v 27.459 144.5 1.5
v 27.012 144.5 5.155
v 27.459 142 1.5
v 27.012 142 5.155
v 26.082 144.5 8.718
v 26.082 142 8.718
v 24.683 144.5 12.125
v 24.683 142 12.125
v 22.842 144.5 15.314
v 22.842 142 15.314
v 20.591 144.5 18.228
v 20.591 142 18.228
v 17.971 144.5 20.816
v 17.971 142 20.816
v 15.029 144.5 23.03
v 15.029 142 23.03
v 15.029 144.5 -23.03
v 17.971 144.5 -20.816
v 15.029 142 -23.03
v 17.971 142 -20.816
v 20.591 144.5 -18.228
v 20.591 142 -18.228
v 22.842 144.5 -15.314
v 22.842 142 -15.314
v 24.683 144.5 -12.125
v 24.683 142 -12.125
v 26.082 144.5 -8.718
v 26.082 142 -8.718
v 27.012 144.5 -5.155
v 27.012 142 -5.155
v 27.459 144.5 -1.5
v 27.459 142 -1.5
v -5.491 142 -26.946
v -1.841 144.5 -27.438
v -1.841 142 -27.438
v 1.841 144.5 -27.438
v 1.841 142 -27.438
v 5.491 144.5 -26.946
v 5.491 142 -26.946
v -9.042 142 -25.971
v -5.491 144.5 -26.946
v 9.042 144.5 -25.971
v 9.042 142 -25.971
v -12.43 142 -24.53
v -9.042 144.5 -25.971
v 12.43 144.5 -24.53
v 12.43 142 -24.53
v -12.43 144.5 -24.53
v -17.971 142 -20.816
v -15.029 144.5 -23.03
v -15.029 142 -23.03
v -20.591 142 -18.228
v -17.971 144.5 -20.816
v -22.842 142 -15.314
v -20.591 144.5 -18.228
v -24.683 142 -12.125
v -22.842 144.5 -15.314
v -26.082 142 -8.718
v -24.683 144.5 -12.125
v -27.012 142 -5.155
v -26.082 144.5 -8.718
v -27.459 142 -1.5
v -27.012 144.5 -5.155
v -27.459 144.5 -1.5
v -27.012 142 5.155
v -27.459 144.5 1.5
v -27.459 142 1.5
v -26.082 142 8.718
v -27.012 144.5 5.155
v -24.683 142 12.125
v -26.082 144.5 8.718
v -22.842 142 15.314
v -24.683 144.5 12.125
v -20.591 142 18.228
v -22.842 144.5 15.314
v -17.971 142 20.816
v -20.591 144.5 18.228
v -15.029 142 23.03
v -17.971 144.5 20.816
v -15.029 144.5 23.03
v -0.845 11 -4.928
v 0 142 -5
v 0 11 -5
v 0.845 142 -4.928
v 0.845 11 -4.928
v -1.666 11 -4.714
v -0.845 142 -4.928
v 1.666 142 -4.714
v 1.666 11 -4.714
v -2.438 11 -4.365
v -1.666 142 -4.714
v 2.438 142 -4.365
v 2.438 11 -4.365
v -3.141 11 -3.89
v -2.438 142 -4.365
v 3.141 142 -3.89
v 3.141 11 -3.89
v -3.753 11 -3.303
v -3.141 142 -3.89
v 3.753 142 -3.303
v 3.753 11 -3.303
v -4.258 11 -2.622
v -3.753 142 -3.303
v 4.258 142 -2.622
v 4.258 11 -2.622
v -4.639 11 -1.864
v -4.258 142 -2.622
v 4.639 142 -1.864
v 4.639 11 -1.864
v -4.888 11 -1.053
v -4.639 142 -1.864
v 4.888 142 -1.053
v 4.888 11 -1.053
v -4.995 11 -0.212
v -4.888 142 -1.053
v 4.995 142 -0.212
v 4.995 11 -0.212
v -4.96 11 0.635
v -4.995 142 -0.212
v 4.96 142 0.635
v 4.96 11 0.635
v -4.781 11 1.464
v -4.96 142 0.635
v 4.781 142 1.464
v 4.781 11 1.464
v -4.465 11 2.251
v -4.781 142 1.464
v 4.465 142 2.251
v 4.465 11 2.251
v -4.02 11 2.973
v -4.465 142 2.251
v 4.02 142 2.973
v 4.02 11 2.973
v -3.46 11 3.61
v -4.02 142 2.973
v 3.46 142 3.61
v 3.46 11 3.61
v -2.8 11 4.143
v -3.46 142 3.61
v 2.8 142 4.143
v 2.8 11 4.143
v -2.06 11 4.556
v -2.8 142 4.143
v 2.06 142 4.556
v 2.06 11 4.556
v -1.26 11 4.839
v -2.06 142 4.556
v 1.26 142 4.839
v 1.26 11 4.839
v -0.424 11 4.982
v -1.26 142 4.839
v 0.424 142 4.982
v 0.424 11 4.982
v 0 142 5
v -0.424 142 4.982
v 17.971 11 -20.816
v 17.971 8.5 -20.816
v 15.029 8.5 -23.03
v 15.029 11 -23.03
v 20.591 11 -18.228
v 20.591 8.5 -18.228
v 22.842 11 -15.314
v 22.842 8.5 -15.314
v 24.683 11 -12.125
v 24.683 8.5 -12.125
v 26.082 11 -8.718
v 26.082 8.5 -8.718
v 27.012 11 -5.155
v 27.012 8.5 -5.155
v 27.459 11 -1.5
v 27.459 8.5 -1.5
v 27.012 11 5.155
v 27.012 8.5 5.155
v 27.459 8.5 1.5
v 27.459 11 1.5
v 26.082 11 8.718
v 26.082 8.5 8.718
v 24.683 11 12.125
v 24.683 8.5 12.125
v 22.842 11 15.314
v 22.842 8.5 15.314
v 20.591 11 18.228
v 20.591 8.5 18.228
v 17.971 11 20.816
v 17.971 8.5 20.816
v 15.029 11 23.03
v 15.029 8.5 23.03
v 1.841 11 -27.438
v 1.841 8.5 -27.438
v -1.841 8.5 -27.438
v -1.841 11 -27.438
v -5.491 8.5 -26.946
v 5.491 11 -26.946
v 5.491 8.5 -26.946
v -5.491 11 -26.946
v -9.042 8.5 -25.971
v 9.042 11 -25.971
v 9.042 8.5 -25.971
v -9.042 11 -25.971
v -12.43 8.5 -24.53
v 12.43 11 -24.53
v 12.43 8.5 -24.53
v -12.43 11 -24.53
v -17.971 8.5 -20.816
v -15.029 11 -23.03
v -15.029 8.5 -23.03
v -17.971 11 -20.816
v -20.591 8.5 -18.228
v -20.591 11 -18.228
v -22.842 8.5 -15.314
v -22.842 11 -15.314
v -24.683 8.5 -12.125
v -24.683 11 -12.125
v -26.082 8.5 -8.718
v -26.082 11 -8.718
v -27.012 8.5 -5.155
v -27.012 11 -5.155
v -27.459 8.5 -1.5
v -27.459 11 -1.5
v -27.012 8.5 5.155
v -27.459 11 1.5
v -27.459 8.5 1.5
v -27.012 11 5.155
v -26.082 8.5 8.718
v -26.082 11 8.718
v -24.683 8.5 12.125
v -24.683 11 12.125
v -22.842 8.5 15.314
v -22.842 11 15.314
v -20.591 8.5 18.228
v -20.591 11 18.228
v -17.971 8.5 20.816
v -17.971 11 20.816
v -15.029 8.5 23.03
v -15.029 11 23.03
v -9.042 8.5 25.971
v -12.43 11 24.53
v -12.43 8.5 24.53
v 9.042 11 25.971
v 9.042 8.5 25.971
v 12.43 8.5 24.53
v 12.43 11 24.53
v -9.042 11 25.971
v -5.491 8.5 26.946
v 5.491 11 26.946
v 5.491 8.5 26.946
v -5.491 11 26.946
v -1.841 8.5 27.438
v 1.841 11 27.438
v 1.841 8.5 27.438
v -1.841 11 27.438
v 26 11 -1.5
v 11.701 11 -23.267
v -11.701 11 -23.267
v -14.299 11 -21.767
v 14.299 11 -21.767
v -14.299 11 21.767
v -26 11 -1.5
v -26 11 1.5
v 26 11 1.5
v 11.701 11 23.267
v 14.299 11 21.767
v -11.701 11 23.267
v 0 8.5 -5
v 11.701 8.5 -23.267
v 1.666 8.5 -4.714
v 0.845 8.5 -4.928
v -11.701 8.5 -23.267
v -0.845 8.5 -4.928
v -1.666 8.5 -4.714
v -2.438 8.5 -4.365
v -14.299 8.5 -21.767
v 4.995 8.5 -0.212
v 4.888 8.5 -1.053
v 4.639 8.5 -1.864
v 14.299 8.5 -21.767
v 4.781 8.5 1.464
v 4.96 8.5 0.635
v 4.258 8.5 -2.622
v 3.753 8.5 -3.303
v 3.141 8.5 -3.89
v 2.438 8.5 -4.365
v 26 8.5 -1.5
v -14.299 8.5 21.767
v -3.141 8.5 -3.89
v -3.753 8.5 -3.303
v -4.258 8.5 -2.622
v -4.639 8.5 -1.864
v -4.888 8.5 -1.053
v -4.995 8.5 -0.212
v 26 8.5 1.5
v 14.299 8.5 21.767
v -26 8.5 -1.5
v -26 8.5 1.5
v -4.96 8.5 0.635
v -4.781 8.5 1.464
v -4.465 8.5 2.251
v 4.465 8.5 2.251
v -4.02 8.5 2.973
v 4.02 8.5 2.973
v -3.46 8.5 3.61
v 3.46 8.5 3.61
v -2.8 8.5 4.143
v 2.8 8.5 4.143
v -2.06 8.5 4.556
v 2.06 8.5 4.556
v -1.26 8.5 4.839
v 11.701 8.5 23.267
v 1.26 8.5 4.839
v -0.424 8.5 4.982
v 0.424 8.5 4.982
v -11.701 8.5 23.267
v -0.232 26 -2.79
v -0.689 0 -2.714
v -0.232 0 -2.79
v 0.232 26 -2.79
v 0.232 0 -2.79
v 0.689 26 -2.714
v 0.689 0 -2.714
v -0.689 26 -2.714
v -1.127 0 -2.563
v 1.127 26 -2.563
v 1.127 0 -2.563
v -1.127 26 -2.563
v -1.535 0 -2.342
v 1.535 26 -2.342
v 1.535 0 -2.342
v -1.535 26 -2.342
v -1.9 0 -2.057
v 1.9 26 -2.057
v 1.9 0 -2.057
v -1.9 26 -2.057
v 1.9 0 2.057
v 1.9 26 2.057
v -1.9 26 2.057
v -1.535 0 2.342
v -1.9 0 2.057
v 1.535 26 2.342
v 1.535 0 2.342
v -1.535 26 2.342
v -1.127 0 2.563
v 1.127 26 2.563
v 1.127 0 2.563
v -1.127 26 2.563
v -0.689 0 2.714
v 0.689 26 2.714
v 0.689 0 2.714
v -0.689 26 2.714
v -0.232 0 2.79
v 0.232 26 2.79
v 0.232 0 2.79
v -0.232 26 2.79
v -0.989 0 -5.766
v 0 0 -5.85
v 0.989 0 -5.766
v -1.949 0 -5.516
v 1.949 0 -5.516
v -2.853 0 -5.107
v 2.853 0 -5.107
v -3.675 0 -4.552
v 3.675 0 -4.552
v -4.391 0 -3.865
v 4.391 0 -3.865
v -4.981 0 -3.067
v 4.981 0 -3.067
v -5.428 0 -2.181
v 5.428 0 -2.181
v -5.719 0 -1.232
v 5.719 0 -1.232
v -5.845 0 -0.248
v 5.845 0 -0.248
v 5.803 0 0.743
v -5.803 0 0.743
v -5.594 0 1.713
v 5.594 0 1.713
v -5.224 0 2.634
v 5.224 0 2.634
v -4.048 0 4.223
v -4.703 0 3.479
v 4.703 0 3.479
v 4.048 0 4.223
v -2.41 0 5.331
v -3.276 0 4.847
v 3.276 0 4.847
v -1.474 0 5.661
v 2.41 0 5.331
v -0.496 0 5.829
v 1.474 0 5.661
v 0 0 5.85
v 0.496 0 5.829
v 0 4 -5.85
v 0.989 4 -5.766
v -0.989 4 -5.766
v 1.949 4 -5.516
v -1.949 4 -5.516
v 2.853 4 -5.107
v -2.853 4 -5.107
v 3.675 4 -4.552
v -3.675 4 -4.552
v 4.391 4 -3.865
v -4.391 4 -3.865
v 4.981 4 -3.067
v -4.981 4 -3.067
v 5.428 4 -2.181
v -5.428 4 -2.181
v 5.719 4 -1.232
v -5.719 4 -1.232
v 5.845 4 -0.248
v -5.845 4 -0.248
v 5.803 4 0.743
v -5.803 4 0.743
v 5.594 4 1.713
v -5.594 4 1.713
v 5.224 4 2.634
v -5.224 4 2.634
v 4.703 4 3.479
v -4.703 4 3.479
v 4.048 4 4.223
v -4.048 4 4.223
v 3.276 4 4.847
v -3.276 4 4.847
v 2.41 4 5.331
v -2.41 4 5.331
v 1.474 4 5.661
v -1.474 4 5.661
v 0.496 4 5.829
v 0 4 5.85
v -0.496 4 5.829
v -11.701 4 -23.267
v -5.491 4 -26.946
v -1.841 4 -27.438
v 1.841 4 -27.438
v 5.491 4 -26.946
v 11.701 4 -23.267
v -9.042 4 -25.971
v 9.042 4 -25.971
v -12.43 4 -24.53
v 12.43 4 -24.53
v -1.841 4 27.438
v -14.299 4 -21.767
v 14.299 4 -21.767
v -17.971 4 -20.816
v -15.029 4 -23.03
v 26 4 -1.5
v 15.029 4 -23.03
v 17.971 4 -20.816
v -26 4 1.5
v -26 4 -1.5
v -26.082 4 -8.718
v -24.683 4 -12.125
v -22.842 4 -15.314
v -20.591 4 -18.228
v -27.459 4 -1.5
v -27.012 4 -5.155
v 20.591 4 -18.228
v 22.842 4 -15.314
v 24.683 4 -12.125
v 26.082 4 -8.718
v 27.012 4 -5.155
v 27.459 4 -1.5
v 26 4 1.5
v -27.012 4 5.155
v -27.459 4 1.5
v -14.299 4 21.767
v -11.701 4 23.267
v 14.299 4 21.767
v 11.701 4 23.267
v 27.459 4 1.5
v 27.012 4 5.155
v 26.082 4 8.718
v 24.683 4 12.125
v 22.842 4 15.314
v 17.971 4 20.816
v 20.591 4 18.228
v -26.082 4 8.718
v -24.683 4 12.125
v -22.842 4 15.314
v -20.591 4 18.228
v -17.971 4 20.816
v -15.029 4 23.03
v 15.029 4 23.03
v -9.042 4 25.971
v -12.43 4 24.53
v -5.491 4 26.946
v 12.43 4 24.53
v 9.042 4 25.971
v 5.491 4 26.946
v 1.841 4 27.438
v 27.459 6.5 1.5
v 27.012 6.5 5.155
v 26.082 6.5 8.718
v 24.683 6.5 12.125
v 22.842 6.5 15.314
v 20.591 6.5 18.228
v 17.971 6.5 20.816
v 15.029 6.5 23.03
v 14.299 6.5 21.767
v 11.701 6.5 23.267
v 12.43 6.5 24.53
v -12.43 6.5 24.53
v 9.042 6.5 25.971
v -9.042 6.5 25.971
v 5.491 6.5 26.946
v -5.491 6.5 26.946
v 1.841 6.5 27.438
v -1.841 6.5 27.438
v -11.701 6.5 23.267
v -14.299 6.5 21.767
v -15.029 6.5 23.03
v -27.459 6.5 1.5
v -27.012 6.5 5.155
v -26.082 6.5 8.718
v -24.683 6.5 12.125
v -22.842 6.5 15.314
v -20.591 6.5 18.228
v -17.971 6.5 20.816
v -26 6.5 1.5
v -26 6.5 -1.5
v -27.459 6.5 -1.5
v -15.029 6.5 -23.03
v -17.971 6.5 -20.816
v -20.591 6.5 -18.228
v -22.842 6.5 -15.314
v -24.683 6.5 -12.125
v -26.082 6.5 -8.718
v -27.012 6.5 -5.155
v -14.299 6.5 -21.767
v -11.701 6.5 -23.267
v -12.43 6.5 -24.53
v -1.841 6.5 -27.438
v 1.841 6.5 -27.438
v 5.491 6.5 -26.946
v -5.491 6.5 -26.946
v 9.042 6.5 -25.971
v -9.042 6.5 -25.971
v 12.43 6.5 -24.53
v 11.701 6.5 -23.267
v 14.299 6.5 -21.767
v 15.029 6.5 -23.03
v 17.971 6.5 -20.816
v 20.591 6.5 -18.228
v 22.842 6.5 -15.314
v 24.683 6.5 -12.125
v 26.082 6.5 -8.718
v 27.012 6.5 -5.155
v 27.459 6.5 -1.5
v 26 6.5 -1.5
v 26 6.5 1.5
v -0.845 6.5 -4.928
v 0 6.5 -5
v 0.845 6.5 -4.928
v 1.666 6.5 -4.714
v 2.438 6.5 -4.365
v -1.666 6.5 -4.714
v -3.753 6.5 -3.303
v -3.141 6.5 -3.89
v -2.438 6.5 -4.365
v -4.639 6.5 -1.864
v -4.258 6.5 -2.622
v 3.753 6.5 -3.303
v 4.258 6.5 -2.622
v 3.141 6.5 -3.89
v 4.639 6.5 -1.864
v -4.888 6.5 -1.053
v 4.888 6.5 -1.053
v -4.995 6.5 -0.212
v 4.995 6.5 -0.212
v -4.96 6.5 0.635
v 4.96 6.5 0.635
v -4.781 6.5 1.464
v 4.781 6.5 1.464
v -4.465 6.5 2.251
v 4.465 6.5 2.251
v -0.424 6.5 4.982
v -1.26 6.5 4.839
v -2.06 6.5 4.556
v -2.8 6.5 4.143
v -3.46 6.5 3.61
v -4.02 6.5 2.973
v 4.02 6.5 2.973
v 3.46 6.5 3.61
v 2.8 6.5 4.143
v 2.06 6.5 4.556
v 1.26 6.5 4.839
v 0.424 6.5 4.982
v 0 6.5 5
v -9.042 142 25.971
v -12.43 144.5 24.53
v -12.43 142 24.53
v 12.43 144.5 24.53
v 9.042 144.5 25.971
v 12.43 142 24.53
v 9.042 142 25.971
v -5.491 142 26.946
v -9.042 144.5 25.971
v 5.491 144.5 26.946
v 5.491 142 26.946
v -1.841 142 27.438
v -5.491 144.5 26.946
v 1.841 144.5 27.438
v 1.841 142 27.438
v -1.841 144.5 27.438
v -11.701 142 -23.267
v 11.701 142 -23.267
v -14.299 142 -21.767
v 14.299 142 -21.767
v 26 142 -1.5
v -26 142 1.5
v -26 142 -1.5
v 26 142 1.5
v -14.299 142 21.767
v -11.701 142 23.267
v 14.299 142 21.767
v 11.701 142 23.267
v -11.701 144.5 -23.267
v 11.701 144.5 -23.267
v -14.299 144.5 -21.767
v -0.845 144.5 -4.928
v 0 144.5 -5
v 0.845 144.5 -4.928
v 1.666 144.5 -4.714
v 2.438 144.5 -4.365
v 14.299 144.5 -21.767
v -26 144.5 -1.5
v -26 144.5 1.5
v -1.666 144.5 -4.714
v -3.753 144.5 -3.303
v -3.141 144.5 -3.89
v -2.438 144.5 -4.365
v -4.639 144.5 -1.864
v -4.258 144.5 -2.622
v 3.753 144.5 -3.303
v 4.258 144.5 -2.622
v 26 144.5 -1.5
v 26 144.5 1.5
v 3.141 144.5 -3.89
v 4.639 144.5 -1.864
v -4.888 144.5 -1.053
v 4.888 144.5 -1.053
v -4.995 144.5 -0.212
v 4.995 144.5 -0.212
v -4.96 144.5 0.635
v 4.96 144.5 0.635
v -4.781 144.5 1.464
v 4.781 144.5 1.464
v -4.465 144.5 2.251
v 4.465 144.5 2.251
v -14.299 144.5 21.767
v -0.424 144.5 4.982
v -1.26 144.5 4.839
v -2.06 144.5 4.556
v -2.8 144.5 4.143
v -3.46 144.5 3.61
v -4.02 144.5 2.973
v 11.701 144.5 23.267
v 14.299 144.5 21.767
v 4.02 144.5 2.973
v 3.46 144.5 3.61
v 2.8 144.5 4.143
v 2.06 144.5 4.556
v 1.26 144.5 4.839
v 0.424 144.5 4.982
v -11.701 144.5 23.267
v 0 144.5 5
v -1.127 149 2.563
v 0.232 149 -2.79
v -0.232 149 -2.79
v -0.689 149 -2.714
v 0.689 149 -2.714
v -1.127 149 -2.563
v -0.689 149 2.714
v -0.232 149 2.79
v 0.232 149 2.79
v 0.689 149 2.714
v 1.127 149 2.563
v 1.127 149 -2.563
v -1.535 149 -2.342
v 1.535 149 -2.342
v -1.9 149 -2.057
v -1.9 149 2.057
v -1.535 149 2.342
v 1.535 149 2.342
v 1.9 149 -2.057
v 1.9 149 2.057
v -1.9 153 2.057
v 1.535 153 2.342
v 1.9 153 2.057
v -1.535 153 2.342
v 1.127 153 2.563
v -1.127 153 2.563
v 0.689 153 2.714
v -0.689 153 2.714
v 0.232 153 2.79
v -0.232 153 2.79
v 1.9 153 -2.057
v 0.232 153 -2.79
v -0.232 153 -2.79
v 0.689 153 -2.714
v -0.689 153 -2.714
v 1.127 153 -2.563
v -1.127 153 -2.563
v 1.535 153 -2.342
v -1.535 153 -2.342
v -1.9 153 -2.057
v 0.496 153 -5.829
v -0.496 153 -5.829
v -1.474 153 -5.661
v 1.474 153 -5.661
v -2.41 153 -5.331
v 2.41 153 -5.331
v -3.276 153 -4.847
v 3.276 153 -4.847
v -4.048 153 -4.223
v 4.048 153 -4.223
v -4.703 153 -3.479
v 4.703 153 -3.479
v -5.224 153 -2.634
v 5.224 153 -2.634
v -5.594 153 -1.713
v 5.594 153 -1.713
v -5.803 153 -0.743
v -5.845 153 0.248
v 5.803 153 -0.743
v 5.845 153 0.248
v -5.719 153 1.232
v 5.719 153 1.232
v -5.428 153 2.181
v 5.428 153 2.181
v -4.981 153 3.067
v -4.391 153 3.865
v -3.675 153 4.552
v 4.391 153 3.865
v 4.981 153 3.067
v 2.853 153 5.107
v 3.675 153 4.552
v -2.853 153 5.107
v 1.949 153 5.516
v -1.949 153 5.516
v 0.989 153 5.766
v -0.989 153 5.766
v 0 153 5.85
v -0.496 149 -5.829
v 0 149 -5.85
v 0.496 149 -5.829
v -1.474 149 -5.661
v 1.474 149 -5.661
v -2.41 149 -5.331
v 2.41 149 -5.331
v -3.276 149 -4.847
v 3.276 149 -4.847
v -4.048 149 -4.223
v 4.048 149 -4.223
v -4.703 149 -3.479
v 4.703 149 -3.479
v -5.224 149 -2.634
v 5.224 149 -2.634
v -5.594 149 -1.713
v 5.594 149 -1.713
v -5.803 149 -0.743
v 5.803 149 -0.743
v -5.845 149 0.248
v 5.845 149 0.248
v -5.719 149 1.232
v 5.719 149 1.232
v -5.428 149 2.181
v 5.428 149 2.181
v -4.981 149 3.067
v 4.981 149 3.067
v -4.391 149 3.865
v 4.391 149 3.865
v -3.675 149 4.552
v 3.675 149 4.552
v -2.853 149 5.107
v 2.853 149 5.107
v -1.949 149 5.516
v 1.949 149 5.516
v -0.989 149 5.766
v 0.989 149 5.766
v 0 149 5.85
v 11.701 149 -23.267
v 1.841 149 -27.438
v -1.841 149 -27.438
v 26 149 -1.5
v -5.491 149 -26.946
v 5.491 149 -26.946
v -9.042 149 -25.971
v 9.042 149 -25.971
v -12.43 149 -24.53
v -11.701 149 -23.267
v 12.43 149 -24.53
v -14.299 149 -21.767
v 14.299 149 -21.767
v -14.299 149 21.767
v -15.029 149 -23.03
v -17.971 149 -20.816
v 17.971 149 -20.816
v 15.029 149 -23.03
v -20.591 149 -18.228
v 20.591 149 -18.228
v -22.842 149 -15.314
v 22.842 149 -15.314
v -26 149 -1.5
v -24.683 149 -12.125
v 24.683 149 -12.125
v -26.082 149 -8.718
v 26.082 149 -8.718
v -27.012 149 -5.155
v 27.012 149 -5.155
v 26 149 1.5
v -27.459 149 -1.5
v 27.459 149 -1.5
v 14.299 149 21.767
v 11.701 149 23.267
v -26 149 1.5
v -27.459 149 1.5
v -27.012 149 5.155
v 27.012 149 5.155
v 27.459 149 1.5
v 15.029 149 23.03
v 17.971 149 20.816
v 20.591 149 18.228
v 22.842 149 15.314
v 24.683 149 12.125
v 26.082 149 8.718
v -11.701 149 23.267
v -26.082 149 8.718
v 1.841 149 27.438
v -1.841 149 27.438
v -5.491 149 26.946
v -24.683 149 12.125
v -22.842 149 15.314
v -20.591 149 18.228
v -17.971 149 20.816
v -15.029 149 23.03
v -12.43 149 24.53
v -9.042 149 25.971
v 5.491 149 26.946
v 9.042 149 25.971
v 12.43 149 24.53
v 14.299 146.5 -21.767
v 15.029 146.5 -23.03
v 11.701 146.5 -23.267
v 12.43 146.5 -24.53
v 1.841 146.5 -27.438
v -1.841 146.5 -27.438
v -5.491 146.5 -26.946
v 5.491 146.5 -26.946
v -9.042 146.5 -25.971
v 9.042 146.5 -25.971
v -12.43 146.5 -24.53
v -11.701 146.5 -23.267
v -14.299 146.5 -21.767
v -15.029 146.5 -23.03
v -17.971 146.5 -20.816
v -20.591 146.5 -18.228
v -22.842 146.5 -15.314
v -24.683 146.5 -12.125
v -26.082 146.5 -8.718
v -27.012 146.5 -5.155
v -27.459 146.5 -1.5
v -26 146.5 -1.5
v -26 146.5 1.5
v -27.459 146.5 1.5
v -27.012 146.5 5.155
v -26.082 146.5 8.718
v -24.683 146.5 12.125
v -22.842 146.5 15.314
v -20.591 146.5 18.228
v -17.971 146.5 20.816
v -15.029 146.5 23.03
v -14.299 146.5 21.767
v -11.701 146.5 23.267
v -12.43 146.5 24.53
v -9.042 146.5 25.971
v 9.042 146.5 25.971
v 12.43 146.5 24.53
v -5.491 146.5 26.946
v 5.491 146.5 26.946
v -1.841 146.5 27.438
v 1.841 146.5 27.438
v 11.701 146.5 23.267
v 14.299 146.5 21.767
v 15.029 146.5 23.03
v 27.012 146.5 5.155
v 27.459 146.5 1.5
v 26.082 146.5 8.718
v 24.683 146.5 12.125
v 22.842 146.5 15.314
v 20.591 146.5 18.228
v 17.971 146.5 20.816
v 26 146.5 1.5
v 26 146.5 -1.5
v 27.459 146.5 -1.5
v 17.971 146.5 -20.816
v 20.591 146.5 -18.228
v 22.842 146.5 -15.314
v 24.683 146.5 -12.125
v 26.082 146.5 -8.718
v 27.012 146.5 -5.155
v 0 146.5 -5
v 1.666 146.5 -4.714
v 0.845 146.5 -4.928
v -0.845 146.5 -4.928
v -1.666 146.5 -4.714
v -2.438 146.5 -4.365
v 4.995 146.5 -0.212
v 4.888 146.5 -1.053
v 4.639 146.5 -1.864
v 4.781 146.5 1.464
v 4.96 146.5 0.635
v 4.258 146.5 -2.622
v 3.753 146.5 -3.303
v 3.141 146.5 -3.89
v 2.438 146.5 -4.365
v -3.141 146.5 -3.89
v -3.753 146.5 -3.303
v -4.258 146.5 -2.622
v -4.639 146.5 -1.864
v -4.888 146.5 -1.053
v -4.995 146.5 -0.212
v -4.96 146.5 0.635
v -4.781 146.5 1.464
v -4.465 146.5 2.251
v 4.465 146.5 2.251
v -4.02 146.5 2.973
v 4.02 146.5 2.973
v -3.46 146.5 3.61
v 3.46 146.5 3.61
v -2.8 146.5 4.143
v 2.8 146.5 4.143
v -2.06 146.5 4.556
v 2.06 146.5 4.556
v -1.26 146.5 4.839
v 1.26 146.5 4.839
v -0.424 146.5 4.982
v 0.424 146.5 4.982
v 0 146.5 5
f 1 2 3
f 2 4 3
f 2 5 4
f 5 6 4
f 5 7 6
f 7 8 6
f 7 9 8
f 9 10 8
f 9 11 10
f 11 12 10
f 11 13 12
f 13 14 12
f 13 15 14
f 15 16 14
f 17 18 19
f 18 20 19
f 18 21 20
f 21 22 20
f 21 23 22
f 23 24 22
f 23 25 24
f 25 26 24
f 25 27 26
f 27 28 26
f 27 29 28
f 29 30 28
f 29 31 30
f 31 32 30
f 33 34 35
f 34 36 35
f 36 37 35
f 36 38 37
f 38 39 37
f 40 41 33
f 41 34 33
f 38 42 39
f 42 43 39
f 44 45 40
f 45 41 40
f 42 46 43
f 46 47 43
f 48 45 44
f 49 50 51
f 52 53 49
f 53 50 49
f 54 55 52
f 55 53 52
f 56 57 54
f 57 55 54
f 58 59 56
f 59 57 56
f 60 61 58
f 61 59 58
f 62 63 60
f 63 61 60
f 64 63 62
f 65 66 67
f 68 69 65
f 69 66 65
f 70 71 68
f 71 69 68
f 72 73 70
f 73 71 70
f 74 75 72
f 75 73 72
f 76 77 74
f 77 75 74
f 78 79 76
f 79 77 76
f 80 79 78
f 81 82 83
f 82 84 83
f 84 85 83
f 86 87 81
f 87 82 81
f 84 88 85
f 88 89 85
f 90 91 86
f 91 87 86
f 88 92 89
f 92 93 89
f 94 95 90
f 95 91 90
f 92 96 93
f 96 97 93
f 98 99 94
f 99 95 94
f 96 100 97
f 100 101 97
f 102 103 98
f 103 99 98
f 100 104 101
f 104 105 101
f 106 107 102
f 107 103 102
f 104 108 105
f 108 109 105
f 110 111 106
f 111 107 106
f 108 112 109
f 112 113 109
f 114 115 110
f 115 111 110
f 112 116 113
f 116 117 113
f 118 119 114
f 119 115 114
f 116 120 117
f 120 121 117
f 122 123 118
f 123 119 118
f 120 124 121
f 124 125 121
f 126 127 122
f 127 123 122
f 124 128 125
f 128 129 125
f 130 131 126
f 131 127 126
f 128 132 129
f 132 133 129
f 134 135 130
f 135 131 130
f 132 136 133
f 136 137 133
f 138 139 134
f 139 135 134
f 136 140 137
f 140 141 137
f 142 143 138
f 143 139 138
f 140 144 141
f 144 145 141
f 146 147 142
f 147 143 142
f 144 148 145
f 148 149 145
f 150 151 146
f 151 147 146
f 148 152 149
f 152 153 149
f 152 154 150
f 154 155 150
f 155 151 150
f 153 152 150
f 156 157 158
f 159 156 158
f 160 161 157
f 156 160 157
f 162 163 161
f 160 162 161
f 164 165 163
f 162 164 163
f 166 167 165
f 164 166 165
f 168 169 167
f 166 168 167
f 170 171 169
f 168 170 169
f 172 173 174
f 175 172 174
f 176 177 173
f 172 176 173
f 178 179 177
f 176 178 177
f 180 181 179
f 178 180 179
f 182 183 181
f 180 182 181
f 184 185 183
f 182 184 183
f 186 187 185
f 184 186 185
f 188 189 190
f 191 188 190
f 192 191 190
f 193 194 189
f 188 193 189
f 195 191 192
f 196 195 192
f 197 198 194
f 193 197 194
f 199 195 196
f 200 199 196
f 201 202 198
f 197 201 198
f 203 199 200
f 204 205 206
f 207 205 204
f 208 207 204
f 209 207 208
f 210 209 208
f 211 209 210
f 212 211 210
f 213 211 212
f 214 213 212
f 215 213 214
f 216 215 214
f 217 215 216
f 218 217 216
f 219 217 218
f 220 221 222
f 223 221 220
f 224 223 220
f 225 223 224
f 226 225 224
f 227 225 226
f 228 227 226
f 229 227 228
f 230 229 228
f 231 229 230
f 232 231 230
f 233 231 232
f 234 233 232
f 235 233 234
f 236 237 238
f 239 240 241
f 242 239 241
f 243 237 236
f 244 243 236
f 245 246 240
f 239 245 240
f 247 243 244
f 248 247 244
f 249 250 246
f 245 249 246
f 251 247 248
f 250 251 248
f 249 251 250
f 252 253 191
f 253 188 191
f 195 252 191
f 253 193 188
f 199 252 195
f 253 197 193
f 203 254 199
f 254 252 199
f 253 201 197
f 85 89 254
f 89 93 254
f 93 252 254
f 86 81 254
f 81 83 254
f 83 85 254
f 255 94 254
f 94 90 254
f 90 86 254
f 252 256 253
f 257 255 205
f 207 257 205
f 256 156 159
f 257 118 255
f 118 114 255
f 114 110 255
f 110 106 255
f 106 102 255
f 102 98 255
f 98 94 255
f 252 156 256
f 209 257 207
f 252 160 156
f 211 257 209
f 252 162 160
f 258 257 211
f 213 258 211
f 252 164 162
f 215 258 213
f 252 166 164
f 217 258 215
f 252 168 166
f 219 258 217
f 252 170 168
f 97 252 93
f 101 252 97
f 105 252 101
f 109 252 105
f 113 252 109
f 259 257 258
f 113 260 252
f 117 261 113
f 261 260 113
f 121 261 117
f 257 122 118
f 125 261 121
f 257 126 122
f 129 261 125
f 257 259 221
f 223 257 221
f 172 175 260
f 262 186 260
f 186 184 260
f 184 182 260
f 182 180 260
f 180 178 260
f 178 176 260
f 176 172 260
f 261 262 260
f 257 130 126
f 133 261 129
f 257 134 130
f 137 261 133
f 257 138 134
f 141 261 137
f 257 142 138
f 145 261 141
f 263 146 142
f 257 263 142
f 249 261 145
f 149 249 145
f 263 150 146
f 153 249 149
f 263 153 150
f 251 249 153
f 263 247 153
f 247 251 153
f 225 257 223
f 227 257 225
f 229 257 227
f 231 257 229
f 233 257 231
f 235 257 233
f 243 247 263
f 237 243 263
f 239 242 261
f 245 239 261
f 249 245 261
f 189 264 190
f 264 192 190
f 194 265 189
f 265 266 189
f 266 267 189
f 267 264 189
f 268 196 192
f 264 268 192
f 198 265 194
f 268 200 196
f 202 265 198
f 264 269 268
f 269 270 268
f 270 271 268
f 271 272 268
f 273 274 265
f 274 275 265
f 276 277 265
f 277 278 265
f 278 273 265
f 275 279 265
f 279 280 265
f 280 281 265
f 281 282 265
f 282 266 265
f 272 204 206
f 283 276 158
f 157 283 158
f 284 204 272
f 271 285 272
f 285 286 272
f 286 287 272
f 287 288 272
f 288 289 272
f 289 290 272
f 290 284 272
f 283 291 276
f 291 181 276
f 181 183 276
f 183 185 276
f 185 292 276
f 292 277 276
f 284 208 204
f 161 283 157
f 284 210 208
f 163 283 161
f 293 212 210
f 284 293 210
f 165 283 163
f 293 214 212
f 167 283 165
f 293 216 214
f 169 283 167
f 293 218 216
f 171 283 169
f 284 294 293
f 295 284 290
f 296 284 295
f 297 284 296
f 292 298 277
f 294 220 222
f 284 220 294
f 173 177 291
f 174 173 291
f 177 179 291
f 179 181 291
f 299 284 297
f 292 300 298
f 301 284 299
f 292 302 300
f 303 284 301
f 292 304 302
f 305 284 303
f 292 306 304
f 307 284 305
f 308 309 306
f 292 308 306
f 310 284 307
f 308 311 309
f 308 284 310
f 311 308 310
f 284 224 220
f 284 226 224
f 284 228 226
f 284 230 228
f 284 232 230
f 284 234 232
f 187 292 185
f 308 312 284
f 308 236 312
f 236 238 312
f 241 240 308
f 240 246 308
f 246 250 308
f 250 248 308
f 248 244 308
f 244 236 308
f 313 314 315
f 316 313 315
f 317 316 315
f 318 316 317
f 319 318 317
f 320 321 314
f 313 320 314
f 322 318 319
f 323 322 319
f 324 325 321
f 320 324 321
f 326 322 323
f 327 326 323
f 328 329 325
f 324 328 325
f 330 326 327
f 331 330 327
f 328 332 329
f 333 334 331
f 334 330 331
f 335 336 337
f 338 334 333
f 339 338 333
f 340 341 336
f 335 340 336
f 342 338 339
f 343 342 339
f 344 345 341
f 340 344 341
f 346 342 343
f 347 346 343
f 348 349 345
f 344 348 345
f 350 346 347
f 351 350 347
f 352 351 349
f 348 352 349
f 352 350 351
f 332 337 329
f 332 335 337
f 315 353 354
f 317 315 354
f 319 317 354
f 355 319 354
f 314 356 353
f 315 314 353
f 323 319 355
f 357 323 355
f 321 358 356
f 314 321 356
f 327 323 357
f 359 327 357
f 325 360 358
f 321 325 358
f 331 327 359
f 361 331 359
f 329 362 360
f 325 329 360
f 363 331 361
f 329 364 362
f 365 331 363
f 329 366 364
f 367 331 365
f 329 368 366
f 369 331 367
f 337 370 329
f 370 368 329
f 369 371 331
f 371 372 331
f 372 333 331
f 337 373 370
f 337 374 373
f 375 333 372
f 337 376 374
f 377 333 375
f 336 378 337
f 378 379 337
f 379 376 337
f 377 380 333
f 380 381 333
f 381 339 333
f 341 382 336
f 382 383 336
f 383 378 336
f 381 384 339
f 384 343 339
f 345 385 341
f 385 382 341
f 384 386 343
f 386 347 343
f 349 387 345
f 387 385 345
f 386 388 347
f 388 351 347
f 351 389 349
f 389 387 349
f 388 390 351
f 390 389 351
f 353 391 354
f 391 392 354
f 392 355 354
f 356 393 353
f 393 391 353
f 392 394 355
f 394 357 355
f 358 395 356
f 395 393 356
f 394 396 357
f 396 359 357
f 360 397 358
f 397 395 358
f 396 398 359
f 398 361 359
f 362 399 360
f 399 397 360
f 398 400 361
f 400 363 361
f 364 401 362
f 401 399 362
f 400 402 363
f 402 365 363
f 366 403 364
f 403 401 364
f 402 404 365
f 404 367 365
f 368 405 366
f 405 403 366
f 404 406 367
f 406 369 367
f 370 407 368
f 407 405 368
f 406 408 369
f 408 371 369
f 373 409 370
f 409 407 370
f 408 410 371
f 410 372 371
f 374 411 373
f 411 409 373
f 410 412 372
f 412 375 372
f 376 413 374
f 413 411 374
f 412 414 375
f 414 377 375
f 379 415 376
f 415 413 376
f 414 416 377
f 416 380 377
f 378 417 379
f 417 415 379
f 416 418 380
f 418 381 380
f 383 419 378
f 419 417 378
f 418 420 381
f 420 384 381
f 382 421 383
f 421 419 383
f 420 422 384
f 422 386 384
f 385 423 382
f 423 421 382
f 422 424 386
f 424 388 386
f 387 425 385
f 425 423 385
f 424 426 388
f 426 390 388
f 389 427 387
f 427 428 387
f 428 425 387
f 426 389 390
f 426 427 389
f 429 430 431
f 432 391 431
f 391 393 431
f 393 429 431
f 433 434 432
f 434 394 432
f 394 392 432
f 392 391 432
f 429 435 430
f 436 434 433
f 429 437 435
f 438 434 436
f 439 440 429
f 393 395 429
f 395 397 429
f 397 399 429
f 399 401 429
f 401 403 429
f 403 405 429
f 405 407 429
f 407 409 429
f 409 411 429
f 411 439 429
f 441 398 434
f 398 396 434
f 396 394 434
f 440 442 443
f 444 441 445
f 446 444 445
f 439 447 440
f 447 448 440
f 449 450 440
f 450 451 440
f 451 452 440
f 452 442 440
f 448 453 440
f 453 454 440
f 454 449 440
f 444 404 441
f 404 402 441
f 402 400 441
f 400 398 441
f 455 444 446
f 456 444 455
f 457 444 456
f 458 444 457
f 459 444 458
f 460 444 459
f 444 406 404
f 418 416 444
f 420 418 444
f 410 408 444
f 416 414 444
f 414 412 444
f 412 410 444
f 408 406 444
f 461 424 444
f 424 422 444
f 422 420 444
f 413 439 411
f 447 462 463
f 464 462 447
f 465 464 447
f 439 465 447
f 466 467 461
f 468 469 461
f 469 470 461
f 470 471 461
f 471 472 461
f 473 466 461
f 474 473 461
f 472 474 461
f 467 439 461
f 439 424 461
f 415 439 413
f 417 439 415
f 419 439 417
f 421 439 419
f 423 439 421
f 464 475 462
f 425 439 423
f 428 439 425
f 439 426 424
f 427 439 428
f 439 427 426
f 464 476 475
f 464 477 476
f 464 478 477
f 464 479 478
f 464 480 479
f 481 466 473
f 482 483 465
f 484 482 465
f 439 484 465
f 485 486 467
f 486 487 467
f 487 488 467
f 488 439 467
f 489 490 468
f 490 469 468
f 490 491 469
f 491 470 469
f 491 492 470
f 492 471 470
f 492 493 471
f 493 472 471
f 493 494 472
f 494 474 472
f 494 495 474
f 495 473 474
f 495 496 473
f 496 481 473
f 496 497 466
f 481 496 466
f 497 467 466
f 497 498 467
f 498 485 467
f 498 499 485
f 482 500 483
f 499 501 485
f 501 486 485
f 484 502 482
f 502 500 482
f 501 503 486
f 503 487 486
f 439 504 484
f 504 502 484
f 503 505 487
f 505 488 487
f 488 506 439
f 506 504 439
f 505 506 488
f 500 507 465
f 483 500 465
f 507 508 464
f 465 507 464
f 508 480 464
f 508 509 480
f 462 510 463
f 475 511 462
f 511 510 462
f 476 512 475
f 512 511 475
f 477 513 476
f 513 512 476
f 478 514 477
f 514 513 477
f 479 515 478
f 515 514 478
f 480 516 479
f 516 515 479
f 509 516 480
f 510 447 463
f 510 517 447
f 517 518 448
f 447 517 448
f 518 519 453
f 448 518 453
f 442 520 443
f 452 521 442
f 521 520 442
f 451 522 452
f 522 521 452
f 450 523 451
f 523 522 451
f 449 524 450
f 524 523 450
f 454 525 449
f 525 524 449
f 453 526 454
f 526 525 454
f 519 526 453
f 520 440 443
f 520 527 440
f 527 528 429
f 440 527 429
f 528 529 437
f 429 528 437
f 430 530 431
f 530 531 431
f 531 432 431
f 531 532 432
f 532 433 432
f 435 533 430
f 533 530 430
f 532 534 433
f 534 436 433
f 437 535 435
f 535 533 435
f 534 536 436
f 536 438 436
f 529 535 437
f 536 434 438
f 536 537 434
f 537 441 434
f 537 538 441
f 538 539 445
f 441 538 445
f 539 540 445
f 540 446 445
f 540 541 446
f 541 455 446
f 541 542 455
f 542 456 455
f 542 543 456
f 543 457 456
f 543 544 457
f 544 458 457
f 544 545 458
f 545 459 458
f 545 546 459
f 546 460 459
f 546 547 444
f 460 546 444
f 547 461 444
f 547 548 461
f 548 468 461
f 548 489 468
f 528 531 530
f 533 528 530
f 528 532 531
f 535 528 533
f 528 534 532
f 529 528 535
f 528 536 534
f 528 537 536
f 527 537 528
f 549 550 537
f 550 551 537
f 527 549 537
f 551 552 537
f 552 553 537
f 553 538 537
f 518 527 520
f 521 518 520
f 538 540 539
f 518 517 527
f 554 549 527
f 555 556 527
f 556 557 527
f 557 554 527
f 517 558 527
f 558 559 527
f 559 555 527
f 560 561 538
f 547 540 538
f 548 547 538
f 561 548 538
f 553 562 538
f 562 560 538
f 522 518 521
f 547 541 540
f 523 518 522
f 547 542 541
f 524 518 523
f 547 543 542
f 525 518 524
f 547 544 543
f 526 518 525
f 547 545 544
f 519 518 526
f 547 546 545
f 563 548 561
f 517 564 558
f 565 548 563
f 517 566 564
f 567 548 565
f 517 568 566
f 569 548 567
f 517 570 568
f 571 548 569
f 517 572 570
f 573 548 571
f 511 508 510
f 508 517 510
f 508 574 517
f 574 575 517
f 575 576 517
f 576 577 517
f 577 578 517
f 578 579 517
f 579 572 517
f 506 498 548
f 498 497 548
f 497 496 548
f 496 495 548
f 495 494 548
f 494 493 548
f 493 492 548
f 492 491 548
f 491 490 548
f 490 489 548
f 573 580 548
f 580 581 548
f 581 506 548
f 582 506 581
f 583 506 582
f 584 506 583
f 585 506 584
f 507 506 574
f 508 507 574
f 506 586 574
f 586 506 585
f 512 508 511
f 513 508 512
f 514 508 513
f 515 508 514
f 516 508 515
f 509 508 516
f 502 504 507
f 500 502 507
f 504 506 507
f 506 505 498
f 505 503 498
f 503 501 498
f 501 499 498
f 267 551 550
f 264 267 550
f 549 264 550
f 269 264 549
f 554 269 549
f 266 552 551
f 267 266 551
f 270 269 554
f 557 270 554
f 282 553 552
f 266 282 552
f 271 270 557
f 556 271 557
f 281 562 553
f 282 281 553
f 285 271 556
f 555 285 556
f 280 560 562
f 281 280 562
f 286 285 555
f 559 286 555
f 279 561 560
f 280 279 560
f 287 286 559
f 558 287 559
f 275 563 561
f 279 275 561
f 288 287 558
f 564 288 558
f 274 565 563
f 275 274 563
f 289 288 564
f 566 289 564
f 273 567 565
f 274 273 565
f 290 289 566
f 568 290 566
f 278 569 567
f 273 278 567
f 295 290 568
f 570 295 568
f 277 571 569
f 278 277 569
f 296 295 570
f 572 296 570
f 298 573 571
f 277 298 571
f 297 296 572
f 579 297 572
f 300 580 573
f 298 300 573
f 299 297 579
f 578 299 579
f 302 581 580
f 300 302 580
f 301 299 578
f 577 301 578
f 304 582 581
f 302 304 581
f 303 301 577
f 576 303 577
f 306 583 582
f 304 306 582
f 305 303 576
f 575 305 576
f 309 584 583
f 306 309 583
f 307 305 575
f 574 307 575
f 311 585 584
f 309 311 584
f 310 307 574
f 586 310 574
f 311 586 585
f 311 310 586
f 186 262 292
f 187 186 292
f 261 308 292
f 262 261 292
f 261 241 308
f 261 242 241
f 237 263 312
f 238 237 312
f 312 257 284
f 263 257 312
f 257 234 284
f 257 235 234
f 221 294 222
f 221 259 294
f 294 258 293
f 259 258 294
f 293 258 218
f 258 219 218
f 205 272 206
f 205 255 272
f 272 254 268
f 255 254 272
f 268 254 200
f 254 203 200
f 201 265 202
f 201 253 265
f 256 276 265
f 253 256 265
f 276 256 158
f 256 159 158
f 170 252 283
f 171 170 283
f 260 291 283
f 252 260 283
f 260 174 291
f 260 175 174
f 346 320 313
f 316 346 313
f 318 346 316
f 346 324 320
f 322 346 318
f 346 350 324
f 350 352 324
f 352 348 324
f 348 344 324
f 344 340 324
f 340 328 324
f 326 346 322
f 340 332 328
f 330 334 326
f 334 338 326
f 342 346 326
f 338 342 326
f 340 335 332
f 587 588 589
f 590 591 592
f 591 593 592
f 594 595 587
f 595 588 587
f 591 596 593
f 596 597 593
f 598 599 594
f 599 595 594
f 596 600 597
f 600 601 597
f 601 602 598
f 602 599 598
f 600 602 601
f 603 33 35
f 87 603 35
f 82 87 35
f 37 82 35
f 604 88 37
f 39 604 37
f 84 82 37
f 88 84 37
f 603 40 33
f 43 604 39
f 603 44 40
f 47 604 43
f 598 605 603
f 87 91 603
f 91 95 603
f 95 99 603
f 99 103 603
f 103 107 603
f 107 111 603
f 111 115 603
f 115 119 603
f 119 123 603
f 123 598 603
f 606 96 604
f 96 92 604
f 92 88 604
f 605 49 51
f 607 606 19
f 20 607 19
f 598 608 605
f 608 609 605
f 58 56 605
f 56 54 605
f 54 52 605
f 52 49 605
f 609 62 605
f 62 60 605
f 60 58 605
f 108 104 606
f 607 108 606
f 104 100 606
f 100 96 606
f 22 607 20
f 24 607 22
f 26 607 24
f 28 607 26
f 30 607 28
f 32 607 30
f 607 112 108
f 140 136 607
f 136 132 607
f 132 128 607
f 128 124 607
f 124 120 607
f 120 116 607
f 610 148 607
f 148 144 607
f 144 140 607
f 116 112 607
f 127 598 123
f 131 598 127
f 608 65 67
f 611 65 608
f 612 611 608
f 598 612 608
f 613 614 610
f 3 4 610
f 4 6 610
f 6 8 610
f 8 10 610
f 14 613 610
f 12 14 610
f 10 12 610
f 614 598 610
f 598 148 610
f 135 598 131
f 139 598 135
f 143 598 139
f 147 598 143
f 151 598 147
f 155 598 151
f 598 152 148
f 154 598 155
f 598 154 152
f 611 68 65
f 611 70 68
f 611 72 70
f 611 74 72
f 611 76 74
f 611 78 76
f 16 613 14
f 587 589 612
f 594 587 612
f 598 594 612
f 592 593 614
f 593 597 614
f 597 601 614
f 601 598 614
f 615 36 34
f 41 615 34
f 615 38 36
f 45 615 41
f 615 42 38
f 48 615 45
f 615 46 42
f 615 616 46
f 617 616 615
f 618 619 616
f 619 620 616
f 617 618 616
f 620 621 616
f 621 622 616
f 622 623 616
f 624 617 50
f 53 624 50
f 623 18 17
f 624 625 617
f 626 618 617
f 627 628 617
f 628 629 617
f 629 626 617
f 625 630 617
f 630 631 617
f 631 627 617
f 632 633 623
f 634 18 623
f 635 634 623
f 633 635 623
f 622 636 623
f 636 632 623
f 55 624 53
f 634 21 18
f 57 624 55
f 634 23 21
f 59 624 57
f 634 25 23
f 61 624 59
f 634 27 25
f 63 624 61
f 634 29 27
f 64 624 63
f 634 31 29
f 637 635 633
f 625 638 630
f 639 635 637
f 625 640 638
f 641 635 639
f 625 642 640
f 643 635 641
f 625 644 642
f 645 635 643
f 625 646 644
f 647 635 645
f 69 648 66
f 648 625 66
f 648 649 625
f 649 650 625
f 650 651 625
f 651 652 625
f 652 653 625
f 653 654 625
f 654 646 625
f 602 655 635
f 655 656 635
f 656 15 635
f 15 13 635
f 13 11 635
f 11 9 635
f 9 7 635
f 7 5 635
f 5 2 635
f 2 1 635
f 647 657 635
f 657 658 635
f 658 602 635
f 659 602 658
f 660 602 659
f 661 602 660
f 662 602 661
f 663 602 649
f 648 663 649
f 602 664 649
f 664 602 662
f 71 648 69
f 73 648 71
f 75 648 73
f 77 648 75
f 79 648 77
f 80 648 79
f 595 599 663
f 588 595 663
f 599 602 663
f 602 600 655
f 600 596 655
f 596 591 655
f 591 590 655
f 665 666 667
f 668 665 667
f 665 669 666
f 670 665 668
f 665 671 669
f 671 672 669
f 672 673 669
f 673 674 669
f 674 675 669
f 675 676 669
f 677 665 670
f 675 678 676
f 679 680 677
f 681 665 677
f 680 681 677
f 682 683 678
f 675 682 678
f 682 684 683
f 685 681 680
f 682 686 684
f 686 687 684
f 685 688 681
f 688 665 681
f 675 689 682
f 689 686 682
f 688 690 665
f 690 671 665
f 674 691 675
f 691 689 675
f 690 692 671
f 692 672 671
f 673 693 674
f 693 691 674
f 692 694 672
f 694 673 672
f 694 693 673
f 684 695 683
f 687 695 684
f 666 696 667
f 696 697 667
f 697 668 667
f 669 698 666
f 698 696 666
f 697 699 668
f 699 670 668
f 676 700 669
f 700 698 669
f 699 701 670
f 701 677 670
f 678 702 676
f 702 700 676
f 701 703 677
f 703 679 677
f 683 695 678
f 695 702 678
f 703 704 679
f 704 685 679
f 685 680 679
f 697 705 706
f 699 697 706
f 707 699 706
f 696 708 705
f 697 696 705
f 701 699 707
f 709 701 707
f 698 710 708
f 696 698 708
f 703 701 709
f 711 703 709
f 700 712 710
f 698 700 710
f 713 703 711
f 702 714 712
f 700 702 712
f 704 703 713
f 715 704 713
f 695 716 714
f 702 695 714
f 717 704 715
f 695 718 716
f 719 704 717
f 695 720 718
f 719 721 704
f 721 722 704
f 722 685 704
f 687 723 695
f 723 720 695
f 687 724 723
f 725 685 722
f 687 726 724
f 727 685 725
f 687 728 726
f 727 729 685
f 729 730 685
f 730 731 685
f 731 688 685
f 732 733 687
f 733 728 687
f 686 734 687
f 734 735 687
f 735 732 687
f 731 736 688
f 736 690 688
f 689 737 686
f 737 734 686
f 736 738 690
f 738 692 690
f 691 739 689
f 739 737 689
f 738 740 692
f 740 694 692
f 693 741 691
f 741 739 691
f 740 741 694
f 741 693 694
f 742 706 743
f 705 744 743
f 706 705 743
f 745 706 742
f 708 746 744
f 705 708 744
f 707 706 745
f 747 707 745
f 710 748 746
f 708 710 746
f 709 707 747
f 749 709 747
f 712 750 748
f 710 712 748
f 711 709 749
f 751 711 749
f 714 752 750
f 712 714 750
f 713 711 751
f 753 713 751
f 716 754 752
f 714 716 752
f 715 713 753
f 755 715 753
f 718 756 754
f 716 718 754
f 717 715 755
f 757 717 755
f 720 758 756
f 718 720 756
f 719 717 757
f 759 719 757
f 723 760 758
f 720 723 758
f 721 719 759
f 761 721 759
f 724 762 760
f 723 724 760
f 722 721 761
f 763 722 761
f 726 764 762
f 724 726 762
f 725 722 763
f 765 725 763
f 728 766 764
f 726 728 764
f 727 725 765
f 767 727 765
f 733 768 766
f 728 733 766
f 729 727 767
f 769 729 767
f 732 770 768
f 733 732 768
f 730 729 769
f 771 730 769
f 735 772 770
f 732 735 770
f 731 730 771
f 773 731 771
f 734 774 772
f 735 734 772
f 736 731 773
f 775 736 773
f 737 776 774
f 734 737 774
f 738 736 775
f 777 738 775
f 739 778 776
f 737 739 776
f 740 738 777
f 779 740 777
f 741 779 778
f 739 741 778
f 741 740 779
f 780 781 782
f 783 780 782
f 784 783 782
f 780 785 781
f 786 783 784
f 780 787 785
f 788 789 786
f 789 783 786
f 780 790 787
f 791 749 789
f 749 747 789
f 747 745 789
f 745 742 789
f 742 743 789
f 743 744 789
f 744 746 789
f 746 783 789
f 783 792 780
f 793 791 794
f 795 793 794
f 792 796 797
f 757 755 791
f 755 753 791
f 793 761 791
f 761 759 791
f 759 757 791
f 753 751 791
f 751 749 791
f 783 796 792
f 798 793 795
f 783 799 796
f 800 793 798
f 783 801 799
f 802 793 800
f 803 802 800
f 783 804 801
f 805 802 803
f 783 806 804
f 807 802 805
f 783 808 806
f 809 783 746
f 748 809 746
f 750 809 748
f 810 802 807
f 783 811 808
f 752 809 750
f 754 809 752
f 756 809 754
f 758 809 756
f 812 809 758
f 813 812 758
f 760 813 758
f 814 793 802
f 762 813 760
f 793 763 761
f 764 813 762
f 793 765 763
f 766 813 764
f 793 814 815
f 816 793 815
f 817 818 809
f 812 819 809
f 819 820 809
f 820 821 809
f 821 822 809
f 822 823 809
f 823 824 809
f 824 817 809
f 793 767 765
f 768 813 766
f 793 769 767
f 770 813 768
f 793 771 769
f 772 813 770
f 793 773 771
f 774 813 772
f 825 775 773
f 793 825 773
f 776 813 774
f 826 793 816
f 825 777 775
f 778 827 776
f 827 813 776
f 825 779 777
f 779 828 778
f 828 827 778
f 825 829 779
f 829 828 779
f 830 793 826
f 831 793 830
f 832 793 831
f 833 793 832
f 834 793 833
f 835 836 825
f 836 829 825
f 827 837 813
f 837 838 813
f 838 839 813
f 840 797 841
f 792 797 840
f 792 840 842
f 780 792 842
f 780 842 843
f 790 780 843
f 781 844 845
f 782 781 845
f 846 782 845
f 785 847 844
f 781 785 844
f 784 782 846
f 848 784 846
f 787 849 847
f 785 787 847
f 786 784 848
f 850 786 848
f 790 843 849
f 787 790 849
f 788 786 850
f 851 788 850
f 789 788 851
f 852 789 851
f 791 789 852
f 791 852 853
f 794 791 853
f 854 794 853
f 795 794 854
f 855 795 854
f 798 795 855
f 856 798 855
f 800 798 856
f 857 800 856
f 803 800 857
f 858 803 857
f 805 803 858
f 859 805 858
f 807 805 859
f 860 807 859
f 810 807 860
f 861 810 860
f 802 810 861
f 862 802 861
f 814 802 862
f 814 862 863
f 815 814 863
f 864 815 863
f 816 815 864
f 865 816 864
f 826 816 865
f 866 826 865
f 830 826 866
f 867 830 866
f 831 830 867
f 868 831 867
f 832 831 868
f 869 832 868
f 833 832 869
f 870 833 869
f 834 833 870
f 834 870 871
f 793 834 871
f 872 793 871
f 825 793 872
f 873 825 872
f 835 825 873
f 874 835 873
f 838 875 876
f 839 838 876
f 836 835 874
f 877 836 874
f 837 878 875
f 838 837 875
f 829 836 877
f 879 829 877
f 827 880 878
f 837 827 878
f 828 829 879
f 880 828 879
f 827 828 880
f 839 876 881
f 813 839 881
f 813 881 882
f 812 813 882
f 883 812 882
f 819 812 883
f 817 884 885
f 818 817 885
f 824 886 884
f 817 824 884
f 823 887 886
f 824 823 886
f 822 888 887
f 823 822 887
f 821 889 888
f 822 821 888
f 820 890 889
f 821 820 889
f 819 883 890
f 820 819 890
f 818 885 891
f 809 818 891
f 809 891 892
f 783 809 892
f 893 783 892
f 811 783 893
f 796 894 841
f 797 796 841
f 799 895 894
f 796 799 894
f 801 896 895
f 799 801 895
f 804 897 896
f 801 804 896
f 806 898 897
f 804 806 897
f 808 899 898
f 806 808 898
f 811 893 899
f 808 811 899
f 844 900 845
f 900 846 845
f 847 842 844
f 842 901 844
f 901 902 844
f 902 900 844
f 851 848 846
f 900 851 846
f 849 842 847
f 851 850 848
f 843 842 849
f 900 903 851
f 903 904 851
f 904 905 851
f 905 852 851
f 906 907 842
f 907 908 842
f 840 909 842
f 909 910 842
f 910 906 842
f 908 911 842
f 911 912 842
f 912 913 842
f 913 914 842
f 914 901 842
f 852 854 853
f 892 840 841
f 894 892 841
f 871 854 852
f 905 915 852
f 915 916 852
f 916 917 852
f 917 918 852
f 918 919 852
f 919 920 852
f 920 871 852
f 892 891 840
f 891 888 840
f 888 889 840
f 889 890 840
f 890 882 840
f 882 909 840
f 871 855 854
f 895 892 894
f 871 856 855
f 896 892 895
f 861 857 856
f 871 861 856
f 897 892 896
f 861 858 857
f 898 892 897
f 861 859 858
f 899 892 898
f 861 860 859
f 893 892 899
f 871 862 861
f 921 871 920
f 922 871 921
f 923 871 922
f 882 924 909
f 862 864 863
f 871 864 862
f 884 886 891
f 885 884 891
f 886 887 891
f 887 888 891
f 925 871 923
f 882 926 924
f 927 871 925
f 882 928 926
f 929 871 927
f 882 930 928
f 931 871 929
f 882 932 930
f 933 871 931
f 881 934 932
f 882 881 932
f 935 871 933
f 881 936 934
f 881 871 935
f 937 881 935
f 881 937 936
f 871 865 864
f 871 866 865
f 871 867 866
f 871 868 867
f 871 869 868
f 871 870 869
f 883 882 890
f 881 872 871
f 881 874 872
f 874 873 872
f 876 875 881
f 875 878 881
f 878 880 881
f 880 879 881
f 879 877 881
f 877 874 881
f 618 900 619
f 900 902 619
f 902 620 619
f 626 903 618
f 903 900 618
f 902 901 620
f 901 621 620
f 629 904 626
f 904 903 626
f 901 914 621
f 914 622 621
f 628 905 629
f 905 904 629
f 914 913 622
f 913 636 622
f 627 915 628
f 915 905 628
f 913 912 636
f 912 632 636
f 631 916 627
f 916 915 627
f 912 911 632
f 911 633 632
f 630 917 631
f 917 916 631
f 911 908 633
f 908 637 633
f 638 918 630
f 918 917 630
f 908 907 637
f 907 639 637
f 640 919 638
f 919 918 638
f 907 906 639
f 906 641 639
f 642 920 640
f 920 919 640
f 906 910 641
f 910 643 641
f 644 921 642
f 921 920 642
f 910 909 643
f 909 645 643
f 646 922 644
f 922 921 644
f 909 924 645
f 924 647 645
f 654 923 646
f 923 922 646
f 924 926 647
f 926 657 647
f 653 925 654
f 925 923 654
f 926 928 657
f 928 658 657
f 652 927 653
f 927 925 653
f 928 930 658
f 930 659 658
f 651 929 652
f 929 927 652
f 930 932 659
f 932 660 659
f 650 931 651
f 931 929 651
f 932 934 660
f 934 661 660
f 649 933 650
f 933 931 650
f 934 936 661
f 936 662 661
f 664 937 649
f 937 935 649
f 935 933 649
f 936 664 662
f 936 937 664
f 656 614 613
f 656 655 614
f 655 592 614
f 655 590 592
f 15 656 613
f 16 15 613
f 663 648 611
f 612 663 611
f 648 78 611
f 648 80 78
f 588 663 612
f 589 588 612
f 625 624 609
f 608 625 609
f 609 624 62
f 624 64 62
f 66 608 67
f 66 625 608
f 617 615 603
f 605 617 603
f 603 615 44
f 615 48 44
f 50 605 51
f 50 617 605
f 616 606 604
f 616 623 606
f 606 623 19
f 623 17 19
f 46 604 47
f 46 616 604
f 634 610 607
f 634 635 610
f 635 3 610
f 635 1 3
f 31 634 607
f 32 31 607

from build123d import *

# Parameters (mm, degrees)
BOSS_EXTRUDE1_DEPTH     = 6.5
SKETCH2_R               = 27.5
BOSS_EXTRUDE2_DEPTH     = 2.5
CUT_EXTRUDE1_DEPTH      = 8
SKETCH4_W               = 3
SKETCH4_H               = 3
CUT_EXTRUDE2_DEPTH      = 10
SKETCH5_R               = 5
BOSS_EXTRUDE3_DEPTH     = 140
CUT_EXTRUDE3_DEPTH      = 15
MIRROR6_COPY_1_SKETCH_R = 27.5
MIRROR6_COPY_1_DEPTH    = 2.5
MIRROR6_COPY_2_SKETCH_W = 3
MIRROR6_COPY_2_SKETCH_H = 3
MIRROR6_COPY_2_DEPTH    = 10


with BuildPart() as part:
    # Sketch1 → Boss-Extrude1 (new body)
    with BuildSketch(Plane(origin=(0, 0, 0), x_dir=(1, 0, 0), z_dir=(0, 1, 0))):
        with BuildLine():
            ThreePointArc((-1.9, -2.05669638), (-2.8, 0), (-1.9, 2.05669638))
            Line((-1.9, 2.05669638), (-1.9, 5.532856405))
            ThreePointArc((-1.9, 5.532856405), (-5.85, 0), (-1.9, -5.532856405))
            Line((-1.9, -5.532856405), (-1.9, -2.05669638))
        make_face()
        with BuildLine():
            ThreePointArc((-1.9, 2.05669638), (0, 2.8), (1.9, 2.05669638))
            Line((1.9, 2.05669638), (1.9, 5.532856405))
            ThreePointArc((1.9, 5.532856405), (0, 5.85), (-1.9, 5.532856405))
            Line((-1.9, 5.532856405), (-1.9, 2.05669638))
        make_face()
        with BuildLine():
            Line((1.9, 5.532856405), (1.9, 2.05669638))
            ThreePointArc((1.9, 2.05669638), (2.565151068, 1.122497216), (2.8, 0))
            ThreePointArc((2.8, 0), (2.565151068, -1.122497216), (1.9, -2.05669638))
            Line((1.9, -2.05669638), (1.9, -5.532856405))
            ThreePointArc((1.9, -5.532856405), (4.761171074, -3.399080758), (5.85, 0))
            ThreePointArc((5.85, 0), (4.761171074, 3.399080758), (1.9, 5.532856405))
        make_face()
        with BuildLine():
            Line((1.9, -5.532856405), (1.9, -2.05669638))
            ThreePointArc((1.9, -2.05669638), (0, -2.8), (-1.9, -2.05669638))
            Line((-1.9, -2.05669638), (-1.9, -5.532856405))
            ThreePointArc((-1.9, -5.532856405), (0, -5.85), (1.9, -5.532856405))
        make_face()
        with BuildLine():
            Line((-1.9, -2.05669638), (-1.9, 2.05669638))
            ThreePointArc((-1.9, 2.05669638), (-2.8, 0), (-1.9, -2.05669638))
        make_face()
        with BuildLine():
            ThreePointArc((2.8, 0), (2.565151068, 1.122497216), (1.9, 2.05669638))
            Line((1.9, 2.05669638), (1.9, -2.05669638))
            ThreePointArc((1.9, -2.05669638), (2.565151068, -1.122497216), (2.8, 0))
        make_face()
    boss_extrude1 = extrude(amount=BOSS_EXTRUDE1_DEPTH)

    # Sketch2 → Boss-Extrude2 (add)
    with BuildSketch(Plane(origin=(0, 6.5, 0), x_dir=(1, 0, 0), z_dir=(0, 1, 0))):
        with Locations(Location((0, 0, 0), (0, 0, 270))):
            Circle(SKETCH2_R)
    boss_extrude2 = extrude(amount=-BOSS_EXTRUDE2_DEPTH)

    # Sketch3 → Cut-Extrude1 (cut)
    with BuildSketch(Plane.XZ.offset(-4)):
        with BuildLine():
            Line((-1.9, 2.05669638), (-1.9, -2.05669638))
            ThreePointArc((-1.9, -2.05669638), (0, -2.8), (1.9, -2.05669638))
            Line((1.9, -2.05669638), (1.9, 2.05669638))
            ThreePointArc((1.9, 2.05669638), (0, 2.8), (-1.9, 2.05669638))
        make_face()
    cut_extrude1 = extrude(amount=-CUT_EXTRUDE1_DEPTH, mode=Mode.SUBTRACT)

    # Sketch4 → Cut-Extrude2 (cut)
    with BuildSketch(Plane(origin=(0, 6.5, 0), x_dir=(1, 0, 0), z_dir=(0, 1, 0))):
        Polygon((14.299038106, -21.766660498), (15.799038106, -24.36473671), (13.200961894, -25.86473671), (11.700961894, -23.266660498), align=None)
        with Locations((27.5, 0)):
            Rectangle(SKETCH4_W, SKETCH4_H)
        Polygon((-11.700961894, -23.266660498), (-13.200961894, -25.86473671), (-15.799038106, -24.36473671), (-14.299038106, -21.766660498), align=None)
        with Locations((-27.5, 0)):
            Rectangle(SKETCH4_W, SKETCH4_H)
        Polygon((-14.299038106, 21.766660498), (-15.799038106, 24.36473671), (-13.200961894, 25.86473671), (-11.700961894, 23.266660498), align=None)
        Polygon((11.700961894, 23.266660498), (13.200961894, 25.86473671), (15.799038106, 24.36473671), (14.299038106, 21.766660498), align=None)
    cut_extrude2 = extrude(amount=-CUT_EXTRUDE2_DEPTH, mode=Mode.SUBTRACT)

    # Sketch5 → Boss-Extrude3 (add)
    with BuildSketch(Plane(origin=(0, 6.5, 0), x_dir=(1, 0, 0), z_dir=(0, 1, 0))):
        with Locations(Location((0, 0, 0), (0, 0, 270))):
            Circle(SKETCH5_R)
    extrude(amount=BOSS_EXTRUDE3_DEPTH)

    # Mirror1: Boss-Extrude2 across plane
    add(boss_extrude2.mirror(Plane.ZX.offset(76.5)))

    # Mirror2: Boss-Extrude1 across plane
    add(boss_extrude1.mirror(Plane.ZX.offset(76.5)))

    # Mirror3: Boss-Extrude2, Cut-Extrude1, Cut-Extrude2 across plane
    add(boss_extrude2.mirror(Plane.ZX.offset(7.5)))
    add(cut_extrude1.mirror(Plane.ZX.offset(7.5)), mode=Mode.SUBTRACT)
    add(cut_extrude2.mirror(Plane.ZX.offset(7.5)), mode=Mode.SUBTRACT)

    # Sketch6 → Cut-Extrude3 (cut)
    with BuildSketch(Plane.XZ.offset(-11)):
        with BuildLine():
            Line((-1.9, 2.05669638), (-1.9, -2.05669638))
            ThreePointArc((-1.9, -2.05669638), (0, -2.8), (1.9, -2.05669638))
            Line((1.9, -2.05669638), (1.9, 2.05669638))
            ThreePointArc((1.9, 2.05669638), (0, 2.8), (-1.9, 2.05669638))
        make_face()
    extrude(amount=-CUT_EXTRUDE3_DEPTH, mode=Mode.SUBTRACT)

    # Mirror5: Cut-Extrude2 across plane
    add(cut_extrude2.mirror(Plane.ZX.offset(76.5)), mode=Mode.SUBTRACT)

    # Mirror6 copy 1 sketch → Mirror6 copy 1 (add)
    with BuildSketch(Plane(origin=(0, 144.5, 0), x_dir=(1, 0, 0), z_dir=(0, 1, 0))):
        with Locations(Location((0, 0, 0), (0, 0, 270))):
            Circle(MIRROR6_COPY_1_SKETCH_R)
    extrude(amount=-MIRROR6_COPY_1_DEPTH)

    # Mirror6 copy 2 sketch → Mirror6 copy 2 (cut)
    with BuildSketch(Plane(origin=(0, 144.5, 0), x_dir=(1, 0, 0), z_dir=(0, 1, 0))):
        Polygon((14.299038106, -21.766660498), (15.799038106, -24.36473671), (13.200961894, -25.86473671), (11.700961894, -23.266660498), align=None)
        with Locations((27.5, 0)):
            Rectangle(MIRROR6_COPY_2_SKETCH_W, MIRROR6_COPY_2_SKETCH_H)
        Polygon((-11.700961894, -23.266660498), (-13.200961894, -25.86473671), (-15.799038106, -24.36473671), (-14.299038106, -21.766660498), align=None)
        with Locations((-27.5, 0)):
            Rectangle(MIRROR6_COPY_2_SKETCH_W, MIRROR6_COPY_2_SKETCH_H)
        Polygon((-14.299038106, 21.766660498), (-15.799038106, 24.36473671), (-13.200961894, 25.86473671), (-11.700961894, 23.266660498), align=None)
        Polygon((11.700961894, 23.266660498), (13.200961894, 25.86473671), (15.799038106, 24.36473671), (14.299038106, 21.766660498), align=None)
    extrude(amount=-MIRROR6_COPY_2_DEPTH, mode=Mode.SUBTRACT)


solid = part.part
